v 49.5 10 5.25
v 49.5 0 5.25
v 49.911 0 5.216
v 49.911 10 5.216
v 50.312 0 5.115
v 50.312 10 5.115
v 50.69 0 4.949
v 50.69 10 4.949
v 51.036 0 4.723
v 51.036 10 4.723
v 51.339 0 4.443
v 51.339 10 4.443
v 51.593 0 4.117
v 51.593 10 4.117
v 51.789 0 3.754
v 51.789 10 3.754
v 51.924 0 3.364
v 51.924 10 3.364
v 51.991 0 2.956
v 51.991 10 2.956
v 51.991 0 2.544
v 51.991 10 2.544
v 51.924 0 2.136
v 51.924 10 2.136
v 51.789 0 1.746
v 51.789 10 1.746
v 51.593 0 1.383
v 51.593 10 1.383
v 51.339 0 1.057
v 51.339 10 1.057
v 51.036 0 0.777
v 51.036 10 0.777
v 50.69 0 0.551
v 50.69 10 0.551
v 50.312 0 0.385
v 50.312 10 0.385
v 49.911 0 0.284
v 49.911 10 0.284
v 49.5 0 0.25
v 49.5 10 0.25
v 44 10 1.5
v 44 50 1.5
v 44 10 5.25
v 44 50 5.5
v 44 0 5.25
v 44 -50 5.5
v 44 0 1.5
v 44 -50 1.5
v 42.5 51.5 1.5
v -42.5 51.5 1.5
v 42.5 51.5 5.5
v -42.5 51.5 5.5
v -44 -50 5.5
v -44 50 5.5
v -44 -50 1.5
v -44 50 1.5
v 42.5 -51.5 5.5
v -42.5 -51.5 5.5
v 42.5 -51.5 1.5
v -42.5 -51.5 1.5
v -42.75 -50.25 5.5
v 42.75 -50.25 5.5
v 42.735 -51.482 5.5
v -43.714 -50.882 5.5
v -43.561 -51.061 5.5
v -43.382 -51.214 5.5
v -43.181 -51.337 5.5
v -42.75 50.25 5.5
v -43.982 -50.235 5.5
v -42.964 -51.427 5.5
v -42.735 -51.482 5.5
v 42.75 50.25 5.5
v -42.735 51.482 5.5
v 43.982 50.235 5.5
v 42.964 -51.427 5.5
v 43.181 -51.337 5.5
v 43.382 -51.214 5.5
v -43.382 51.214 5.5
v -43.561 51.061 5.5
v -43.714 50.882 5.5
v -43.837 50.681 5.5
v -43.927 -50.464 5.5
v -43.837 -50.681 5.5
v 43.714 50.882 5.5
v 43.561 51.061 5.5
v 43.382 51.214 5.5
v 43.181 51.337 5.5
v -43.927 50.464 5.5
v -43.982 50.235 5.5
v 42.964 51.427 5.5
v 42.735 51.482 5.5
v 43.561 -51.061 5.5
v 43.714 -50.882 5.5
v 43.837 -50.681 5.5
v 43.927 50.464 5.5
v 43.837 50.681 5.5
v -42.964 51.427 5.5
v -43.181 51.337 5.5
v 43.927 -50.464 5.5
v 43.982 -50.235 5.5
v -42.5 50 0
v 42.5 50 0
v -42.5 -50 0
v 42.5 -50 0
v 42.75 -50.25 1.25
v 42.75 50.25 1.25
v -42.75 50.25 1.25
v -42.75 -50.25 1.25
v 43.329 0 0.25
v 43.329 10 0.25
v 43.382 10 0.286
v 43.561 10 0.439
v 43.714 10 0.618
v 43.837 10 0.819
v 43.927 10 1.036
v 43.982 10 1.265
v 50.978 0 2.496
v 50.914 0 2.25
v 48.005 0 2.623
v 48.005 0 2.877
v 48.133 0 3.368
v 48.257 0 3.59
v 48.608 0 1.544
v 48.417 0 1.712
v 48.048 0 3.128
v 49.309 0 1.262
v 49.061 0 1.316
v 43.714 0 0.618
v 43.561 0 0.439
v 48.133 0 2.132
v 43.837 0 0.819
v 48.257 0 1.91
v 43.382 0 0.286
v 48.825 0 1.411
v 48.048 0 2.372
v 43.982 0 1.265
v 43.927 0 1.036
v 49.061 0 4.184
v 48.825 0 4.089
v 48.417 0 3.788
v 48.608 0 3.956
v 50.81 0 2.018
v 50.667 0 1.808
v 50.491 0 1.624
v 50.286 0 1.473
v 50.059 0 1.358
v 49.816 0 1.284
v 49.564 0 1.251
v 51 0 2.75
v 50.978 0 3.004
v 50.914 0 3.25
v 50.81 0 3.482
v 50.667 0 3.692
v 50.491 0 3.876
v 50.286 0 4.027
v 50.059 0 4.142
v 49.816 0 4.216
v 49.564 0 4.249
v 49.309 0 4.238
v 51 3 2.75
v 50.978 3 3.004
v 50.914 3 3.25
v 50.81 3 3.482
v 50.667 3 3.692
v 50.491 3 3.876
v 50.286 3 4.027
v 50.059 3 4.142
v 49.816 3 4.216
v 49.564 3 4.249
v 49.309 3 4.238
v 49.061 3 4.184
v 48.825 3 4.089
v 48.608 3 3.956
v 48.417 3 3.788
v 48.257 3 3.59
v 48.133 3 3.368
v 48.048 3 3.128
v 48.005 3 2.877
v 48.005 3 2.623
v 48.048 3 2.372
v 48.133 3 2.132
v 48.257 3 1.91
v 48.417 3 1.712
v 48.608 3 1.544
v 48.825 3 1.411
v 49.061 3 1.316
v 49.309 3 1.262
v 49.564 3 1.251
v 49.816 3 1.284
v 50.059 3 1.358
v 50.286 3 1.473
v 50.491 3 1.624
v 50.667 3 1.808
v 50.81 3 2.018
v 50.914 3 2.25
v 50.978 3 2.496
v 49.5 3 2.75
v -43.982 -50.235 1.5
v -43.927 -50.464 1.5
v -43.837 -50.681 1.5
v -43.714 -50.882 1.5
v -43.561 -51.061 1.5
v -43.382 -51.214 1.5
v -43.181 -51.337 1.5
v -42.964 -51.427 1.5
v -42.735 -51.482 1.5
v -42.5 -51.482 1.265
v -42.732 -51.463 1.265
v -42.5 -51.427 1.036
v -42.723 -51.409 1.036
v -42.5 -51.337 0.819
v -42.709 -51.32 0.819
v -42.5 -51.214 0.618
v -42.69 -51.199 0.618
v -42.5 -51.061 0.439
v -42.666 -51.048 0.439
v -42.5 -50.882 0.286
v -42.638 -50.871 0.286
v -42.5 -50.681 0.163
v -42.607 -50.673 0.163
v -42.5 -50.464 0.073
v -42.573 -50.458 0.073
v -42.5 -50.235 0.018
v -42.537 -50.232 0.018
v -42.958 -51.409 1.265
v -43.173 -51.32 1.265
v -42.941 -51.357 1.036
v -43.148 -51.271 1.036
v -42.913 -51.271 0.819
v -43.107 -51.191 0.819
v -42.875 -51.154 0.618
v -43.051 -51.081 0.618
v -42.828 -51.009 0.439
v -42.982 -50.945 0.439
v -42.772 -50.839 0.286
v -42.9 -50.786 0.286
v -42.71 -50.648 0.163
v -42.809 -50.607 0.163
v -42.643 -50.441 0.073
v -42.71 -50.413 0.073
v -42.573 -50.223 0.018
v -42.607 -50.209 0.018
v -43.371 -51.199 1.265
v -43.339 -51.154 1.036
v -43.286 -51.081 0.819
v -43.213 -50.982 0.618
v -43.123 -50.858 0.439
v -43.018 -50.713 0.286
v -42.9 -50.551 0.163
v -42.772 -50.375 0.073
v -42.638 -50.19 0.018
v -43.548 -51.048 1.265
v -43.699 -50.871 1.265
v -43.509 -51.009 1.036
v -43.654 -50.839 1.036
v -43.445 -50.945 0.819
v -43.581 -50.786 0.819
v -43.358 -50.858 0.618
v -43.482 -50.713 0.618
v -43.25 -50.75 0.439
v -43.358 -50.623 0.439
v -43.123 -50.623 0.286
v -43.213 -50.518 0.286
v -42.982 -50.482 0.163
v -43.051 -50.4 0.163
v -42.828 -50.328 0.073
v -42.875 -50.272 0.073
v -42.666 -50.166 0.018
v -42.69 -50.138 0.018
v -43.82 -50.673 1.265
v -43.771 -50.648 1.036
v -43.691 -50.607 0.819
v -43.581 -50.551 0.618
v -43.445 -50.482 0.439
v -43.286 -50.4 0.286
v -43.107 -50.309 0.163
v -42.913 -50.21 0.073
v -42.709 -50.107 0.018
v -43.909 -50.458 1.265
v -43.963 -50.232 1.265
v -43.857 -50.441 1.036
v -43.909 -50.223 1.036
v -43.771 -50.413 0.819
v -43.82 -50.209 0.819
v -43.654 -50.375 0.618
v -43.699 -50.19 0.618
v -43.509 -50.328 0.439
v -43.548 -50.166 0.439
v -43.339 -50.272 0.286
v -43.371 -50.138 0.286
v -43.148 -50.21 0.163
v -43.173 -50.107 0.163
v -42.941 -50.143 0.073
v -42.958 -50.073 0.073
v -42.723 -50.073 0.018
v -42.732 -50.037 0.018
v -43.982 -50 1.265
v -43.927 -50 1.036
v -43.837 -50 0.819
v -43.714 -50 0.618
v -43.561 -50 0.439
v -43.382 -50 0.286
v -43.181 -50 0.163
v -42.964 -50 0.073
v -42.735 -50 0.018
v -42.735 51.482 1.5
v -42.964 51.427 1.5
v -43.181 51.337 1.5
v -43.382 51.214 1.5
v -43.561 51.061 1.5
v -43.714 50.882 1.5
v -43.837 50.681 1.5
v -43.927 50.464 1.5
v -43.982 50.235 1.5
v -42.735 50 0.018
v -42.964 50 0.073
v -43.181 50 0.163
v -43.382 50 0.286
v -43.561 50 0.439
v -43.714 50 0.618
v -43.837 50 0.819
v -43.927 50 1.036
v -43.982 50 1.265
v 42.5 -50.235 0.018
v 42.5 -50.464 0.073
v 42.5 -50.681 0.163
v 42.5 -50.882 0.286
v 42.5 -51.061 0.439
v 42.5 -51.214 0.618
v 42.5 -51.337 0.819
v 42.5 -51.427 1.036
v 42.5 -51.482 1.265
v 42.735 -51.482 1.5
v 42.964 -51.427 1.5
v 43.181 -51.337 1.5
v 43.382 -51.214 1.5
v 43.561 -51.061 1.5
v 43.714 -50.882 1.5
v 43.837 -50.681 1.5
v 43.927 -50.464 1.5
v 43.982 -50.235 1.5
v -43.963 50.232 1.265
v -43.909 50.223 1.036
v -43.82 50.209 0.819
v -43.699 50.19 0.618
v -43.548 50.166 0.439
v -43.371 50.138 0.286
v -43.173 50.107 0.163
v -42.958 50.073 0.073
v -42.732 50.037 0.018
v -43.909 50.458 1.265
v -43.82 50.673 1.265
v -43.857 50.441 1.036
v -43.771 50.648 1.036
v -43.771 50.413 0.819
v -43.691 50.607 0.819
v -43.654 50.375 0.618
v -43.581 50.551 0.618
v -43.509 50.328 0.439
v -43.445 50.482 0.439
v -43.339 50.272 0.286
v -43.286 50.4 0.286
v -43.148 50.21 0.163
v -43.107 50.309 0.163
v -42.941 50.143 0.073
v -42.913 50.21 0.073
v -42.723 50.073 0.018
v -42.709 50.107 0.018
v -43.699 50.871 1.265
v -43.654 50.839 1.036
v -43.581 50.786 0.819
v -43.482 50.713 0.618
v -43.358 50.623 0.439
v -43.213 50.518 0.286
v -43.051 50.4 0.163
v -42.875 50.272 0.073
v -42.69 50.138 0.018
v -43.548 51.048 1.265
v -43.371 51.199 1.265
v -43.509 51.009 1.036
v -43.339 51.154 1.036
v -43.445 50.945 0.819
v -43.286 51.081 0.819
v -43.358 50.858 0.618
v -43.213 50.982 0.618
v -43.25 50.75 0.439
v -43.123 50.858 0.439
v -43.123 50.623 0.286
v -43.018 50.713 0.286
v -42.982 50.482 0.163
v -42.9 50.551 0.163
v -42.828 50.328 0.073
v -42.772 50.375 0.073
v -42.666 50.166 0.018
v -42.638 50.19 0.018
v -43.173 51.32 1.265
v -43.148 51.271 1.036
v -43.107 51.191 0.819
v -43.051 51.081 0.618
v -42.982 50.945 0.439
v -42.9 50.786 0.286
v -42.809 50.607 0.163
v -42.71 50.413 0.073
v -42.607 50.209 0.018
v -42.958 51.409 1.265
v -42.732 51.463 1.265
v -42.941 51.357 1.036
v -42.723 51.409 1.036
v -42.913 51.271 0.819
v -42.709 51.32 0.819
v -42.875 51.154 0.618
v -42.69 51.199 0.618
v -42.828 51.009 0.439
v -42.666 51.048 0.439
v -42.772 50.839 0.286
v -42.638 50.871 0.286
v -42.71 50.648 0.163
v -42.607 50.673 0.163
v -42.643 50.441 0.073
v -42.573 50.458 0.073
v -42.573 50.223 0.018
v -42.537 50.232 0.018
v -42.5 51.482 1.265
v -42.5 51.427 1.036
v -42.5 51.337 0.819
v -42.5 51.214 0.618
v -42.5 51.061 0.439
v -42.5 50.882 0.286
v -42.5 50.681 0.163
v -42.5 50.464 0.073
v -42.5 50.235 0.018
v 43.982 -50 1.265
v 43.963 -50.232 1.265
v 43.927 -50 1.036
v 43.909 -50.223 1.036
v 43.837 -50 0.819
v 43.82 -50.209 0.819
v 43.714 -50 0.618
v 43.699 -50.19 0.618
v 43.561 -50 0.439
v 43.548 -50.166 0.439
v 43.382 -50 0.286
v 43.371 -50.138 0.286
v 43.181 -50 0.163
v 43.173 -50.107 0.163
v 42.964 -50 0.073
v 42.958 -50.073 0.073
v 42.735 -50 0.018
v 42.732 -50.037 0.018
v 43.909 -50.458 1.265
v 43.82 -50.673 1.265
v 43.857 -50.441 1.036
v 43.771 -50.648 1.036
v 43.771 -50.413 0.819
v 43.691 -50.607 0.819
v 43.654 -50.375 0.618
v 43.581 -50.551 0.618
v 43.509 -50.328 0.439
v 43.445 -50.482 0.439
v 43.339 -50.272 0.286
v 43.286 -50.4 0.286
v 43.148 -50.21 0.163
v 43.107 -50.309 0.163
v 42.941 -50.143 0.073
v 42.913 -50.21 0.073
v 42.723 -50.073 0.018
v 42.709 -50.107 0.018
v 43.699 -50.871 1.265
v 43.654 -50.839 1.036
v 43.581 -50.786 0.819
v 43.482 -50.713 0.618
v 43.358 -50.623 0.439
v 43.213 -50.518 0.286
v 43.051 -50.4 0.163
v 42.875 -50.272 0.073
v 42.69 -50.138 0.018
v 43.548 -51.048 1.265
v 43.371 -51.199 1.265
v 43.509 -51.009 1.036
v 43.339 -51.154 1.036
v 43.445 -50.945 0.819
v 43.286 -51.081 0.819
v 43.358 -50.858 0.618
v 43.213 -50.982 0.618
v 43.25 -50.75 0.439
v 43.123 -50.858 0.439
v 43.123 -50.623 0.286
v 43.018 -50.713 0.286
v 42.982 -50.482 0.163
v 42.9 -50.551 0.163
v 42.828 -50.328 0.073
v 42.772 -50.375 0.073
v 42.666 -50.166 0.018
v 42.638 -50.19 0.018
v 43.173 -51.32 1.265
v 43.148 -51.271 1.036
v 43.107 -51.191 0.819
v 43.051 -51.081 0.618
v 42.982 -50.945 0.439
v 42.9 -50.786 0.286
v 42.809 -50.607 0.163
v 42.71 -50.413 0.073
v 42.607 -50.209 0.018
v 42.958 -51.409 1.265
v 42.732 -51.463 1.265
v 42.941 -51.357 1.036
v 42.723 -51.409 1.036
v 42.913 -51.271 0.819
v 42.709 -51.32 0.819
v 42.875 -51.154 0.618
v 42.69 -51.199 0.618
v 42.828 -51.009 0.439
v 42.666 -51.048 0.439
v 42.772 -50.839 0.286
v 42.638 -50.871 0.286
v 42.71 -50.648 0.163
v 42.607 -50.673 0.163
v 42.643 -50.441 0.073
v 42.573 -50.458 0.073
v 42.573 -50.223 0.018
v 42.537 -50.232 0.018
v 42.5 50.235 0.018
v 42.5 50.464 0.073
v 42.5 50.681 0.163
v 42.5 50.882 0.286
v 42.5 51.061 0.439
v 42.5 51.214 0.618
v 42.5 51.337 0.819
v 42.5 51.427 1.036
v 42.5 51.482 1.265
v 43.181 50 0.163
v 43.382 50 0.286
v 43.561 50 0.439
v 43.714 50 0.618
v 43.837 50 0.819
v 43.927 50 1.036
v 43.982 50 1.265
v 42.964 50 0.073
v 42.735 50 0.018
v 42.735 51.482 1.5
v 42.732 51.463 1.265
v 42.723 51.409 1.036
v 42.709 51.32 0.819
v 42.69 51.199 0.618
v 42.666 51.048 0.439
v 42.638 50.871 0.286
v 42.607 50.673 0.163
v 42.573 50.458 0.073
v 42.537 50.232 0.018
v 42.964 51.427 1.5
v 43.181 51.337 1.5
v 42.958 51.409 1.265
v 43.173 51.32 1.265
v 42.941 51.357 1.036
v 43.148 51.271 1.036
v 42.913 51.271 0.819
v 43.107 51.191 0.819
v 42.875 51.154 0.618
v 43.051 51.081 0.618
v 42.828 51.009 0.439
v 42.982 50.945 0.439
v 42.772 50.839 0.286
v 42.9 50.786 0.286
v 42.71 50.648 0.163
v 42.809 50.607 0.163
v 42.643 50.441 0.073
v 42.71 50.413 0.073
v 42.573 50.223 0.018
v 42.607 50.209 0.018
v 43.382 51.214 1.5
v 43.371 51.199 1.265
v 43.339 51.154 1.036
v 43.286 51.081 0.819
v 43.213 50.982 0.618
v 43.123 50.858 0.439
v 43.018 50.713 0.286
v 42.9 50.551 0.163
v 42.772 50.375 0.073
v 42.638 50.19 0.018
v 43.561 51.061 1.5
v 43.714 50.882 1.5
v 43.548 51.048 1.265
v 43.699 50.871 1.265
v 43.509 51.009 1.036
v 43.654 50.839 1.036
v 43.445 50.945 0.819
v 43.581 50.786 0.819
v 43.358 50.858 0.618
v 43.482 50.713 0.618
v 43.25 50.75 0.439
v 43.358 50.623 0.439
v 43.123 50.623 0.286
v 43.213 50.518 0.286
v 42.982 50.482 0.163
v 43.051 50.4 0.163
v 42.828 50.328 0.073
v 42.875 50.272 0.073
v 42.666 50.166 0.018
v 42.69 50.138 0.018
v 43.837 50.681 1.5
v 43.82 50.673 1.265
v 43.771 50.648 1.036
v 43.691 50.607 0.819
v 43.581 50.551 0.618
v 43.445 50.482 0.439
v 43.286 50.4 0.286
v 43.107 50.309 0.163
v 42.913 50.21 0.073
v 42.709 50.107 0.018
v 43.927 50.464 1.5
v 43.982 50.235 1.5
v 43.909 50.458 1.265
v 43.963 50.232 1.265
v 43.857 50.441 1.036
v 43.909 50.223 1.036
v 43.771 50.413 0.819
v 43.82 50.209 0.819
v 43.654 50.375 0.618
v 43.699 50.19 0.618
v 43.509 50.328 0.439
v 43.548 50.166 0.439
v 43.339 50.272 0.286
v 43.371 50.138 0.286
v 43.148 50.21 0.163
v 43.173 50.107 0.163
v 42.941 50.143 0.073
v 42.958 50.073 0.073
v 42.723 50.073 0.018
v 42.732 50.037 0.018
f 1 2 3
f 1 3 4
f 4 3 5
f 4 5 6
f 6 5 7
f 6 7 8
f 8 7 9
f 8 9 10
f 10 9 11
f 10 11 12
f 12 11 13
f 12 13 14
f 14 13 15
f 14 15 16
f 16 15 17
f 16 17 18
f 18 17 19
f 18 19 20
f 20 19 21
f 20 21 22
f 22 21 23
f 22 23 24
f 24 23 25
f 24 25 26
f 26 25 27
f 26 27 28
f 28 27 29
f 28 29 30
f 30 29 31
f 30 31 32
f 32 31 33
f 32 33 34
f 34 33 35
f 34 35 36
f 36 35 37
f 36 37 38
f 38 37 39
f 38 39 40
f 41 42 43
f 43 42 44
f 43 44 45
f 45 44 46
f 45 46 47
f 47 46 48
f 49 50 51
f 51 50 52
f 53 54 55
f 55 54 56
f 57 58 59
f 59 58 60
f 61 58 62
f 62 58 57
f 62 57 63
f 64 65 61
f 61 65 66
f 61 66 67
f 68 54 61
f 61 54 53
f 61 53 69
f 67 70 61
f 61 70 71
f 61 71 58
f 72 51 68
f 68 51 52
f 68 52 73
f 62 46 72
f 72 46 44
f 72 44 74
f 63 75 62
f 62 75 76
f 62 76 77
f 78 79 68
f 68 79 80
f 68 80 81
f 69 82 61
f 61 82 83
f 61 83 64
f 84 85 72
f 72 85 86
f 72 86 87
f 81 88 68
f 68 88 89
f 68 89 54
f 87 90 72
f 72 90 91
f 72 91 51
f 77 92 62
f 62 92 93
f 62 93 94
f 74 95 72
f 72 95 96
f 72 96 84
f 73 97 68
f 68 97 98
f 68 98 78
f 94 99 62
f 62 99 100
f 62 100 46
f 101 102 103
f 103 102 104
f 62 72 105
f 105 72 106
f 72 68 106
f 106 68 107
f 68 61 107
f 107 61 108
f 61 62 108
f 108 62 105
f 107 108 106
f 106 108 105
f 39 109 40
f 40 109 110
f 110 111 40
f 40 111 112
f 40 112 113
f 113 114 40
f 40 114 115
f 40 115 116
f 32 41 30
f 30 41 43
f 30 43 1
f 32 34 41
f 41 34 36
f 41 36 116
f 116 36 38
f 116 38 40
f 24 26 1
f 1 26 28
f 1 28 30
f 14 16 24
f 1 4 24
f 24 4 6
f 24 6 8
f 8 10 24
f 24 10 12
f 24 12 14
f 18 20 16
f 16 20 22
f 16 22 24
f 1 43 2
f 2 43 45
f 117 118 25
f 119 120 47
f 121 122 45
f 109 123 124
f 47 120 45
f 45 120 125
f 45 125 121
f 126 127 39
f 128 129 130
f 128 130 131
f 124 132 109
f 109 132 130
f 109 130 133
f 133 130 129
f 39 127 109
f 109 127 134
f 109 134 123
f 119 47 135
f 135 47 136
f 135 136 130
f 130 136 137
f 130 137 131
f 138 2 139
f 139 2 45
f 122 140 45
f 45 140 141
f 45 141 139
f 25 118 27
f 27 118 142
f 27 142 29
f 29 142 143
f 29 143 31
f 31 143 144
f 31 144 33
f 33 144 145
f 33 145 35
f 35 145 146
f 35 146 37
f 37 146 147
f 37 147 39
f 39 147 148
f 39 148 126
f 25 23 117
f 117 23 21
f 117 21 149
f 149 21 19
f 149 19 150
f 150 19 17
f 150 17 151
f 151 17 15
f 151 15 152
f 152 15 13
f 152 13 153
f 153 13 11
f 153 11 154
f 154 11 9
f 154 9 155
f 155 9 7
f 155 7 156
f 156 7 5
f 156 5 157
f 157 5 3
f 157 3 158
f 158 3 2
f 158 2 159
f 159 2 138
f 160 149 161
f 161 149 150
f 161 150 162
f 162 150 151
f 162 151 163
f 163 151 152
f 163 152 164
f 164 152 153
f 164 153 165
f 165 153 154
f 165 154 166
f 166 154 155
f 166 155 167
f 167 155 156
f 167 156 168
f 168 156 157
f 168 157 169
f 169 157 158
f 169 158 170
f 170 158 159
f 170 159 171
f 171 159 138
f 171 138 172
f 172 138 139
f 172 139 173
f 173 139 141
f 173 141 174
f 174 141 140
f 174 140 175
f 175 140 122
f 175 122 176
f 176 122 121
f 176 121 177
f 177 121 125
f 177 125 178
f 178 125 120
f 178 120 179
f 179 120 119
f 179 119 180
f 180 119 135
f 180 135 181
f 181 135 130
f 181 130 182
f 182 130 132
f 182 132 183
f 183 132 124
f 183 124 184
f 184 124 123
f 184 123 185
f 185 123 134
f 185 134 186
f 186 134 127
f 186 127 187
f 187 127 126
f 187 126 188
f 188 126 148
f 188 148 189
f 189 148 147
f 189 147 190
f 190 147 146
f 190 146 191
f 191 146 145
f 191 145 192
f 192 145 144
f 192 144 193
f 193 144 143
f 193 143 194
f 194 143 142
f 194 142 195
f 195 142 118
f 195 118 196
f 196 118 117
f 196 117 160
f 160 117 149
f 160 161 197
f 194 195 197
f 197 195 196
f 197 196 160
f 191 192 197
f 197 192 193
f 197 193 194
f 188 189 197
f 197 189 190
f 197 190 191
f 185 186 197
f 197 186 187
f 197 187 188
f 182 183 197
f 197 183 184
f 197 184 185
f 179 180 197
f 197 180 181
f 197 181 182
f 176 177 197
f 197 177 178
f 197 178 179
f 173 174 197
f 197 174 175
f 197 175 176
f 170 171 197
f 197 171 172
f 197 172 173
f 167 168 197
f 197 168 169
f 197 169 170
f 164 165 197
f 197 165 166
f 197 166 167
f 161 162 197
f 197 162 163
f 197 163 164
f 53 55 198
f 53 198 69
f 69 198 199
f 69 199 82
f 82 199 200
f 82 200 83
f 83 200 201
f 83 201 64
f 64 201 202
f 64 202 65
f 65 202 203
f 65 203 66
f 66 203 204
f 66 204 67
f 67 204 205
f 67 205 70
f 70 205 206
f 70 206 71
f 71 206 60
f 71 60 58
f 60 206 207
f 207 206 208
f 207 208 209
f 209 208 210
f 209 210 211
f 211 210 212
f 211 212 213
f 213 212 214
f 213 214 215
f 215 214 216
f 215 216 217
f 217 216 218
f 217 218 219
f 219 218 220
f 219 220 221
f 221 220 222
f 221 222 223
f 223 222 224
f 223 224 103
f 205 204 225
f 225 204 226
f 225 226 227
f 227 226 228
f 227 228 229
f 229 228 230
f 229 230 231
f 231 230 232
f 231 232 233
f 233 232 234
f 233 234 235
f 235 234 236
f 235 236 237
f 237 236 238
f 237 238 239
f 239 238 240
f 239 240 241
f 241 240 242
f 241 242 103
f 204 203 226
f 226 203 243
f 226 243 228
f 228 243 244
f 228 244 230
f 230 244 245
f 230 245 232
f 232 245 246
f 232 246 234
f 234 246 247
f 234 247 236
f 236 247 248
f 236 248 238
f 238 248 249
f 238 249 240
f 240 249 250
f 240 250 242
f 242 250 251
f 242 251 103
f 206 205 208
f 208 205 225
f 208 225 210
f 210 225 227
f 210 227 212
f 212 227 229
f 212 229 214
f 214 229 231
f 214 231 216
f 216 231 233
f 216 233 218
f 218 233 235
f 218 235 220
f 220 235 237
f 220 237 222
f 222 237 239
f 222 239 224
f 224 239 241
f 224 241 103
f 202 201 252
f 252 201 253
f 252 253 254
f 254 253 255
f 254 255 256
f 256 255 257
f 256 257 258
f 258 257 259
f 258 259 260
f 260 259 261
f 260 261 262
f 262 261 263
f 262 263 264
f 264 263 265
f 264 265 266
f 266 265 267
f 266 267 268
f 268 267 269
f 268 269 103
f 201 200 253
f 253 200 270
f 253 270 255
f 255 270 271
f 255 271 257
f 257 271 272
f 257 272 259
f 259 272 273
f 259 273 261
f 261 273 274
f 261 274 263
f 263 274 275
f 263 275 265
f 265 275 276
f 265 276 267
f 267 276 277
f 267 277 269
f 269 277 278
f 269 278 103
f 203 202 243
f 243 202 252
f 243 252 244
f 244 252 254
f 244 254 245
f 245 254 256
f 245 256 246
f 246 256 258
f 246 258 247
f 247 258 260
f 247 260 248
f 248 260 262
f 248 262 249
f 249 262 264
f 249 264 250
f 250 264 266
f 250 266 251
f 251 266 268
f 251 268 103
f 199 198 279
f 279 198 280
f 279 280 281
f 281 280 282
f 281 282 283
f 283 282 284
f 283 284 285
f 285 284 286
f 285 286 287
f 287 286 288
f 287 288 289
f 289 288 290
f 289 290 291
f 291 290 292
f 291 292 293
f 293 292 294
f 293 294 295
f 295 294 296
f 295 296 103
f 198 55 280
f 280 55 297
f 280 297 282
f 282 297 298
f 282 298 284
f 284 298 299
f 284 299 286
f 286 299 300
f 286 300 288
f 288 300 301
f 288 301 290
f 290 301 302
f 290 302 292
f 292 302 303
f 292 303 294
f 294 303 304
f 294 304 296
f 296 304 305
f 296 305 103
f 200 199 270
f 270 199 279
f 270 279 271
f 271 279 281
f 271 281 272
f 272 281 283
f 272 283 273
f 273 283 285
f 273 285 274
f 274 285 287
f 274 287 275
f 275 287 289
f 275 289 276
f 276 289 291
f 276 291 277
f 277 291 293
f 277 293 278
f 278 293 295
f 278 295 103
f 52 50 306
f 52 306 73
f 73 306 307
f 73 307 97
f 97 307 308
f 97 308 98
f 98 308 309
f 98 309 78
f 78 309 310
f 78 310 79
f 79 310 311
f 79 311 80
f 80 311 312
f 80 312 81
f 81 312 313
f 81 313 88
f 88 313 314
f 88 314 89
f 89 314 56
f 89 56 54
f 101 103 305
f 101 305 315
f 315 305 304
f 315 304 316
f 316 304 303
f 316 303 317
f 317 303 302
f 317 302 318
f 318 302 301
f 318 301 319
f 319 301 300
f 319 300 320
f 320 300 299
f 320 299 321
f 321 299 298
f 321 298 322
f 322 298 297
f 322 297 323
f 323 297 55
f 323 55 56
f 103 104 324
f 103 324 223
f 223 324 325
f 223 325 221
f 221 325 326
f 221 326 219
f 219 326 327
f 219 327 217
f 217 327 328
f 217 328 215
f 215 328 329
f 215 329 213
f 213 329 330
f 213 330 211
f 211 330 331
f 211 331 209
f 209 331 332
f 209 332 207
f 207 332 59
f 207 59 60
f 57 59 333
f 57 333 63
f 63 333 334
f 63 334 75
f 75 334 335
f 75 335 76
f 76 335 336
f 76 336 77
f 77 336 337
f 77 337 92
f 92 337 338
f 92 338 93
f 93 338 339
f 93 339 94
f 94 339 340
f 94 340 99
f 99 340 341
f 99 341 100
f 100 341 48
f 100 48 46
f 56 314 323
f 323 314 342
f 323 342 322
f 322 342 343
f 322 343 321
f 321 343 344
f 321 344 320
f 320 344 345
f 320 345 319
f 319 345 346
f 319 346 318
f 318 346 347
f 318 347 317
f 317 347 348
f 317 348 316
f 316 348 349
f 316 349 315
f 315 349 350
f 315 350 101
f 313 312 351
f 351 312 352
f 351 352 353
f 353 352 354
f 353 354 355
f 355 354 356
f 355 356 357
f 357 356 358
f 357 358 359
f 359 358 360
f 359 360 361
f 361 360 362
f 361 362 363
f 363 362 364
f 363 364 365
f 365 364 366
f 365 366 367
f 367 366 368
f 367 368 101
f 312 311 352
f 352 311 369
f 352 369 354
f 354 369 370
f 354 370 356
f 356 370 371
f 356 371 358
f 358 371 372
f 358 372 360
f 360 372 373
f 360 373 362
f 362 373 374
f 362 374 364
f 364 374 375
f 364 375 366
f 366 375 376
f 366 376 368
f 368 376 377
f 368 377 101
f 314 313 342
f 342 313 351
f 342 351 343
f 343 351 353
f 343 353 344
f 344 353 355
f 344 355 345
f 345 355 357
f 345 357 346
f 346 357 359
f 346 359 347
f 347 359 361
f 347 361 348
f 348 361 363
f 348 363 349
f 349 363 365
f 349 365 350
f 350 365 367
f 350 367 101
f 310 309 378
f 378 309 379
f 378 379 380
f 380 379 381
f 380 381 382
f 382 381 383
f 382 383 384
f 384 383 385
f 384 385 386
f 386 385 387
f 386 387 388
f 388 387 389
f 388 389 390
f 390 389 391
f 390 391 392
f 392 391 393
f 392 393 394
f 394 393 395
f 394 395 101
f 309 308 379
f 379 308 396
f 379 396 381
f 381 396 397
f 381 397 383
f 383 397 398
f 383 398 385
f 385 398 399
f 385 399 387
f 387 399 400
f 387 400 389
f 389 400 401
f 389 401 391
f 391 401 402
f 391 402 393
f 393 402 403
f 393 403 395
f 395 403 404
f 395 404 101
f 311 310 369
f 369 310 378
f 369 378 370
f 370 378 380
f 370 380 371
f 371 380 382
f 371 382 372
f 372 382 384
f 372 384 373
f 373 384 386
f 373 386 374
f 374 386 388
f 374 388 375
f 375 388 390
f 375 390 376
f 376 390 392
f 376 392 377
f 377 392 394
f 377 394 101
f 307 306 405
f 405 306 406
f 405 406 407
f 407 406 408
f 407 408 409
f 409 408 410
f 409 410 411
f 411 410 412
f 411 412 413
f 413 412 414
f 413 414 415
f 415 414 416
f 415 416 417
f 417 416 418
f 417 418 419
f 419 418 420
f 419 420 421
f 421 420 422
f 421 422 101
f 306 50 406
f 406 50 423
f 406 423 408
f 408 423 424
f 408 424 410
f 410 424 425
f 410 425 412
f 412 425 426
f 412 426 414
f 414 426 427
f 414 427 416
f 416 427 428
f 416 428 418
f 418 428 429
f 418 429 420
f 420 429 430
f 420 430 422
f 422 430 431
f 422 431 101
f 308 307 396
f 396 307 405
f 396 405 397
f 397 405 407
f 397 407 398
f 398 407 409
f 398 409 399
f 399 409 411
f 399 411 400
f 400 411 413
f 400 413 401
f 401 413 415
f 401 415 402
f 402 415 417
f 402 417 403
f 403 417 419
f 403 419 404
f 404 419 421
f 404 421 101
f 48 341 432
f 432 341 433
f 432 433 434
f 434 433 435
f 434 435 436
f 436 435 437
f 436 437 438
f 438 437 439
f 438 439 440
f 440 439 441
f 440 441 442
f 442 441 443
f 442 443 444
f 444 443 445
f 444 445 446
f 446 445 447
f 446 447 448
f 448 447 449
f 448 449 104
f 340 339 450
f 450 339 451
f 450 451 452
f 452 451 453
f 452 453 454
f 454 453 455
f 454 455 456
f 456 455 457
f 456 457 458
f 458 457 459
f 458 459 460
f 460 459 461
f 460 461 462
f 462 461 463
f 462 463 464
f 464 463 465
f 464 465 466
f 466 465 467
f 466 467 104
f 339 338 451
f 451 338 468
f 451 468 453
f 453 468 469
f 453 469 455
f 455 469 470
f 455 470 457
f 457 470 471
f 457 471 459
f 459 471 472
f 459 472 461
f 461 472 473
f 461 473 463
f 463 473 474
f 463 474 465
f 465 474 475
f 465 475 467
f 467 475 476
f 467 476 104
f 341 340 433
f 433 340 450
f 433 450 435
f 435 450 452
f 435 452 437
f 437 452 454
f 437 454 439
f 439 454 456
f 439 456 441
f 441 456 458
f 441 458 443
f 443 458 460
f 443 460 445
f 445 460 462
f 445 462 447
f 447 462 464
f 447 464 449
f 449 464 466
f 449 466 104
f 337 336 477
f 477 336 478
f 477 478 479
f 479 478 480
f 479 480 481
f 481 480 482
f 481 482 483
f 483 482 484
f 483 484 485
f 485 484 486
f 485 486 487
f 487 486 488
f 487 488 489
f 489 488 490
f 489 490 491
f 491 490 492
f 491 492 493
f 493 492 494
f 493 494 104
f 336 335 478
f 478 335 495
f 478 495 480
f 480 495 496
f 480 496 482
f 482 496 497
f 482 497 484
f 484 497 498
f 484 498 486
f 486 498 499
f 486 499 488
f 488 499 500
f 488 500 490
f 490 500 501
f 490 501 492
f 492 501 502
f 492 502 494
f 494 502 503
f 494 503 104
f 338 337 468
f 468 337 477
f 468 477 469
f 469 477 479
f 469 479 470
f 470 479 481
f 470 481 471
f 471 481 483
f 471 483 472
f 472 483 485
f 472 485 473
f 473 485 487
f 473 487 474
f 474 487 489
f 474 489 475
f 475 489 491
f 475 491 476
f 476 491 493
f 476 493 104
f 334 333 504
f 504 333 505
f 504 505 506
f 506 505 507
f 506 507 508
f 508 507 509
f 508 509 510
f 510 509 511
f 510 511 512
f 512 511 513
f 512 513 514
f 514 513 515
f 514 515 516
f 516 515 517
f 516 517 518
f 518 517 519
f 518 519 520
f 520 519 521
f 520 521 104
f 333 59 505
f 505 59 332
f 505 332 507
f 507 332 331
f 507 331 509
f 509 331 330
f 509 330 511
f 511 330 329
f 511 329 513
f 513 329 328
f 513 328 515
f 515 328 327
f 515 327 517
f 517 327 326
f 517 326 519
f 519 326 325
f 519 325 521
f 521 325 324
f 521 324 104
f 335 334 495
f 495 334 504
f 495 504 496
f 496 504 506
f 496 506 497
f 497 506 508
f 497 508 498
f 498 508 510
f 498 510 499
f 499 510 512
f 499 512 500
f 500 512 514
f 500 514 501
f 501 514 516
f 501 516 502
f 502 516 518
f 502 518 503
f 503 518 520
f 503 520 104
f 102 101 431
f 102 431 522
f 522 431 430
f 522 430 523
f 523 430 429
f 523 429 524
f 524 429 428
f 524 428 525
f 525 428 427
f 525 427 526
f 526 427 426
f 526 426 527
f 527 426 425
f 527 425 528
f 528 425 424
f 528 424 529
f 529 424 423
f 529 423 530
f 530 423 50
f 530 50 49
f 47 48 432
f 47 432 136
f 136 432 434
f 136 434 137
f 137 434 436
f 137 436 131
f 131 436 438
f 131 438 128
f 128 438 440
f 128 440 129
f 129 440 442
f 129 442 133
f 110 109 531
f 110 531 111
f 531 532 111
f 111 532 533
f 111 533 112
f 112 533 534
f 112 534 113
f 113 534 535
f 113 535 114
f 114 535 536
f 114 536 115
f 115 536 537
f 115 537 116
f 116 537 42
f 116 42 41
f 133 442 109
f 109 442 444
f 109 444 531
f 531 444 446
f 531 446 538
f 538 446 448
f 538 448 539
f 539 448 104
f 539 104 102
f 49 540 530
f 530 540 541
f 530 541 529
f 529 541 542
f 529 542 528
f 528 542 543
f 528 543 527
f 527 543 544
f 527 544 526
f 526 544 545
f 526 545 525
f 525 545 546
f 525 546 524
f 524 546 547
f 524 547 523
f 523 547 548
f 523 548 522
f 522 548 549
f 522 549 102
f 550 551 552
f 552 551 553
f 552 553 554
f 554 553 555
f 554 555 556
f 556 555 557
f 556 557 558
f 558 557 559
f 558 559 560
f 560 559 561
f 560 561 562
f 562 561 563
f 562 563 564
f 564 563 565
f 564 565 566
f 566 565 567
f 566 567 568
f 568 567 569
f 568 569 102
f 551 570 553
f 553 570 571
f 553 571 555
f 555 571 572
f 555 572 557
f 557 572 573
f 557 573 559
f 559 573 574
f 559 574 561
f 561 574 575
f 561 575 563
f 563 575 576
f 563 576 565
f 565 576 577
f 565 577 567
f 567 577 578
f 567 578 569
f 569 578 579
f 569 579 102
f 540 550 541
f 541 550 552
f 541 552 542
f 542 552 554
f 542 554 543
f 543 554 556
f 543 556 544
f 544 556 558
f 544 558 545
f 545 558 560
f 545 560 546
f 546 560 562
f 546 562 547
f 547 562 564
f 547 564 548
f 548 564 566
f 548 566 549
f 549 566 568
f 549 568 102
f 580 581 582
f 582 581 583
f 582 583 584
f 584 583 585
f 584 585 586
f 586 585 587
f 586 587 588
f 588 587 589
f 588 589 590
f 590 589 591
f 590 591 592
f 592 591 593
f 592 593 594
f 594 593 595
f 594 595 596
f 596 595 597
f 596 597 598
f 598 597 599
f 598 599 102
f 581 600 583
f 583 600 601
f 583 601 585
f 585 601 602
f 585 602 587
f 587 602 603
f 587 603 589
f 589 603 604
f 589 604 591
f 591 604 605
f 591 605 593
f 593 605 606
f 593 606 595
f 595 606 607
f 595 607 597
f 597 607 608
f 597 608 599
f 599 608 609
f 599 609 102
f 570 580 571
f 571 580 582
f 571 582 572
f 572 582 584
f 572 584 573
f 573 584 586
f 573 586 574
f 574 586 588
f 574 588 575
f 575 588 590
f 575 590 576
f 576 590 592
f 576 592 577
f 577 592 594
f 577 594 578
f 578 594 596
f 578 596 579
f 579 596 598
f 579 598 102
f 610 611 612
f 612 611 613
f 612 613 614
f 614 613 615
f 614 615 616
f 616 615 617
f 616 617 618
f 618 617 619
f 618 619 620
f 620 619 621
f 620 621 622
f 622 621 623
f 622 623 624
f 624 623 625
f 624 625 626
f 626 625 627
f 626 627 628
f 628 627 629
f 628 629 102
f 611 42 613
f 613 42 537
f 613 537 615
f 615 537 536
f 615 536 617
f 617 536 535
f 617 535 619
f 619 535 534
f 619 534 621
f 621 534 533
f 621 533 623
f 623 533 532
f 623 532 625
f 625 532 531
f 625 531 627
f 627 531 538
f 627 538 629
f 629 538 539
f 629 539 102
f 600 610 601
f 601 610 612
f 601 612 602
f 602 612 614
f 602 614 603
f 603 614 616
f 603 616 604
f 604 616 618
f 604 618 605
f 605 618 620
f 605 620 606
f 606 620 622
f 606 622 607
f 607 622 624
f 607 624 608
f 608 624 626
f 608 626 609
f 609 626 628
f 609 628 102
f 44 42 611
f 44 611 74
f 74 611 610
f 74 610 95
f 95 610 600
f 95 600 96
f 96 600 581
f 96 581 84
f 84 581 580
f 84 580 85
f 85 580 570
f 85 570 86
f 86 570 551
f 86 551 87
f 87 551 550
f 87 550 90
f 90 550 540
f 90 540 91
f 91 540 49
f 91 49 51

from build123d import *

# Parameters (mm, degrees)
SKETCH1_W           = 88
SKETCH1_H           = 103
BOSS_EXTRUDE1_DEPTH = 5.5
SHELL1_T            = -1.25
SKETCH2_W           = 5
SKETCH2_H           = 10
BOSS_EXTRUDE2_DEPTH = 8
FILLET1_RADIUS      = 2.5
FILLET1_LENGTH      = 10
SKETCH3_R           = 1.5
CUT_EXTRUDE1_DEPTH  = 3
FILLET2_R           = 1.5


with BuildPart() as part:
    # Sketch1 → Boss-Extrude1 (new body)
    with BuildSketch(Plane.XY):
        Rectangle(SKETCH1_W, SKETCH1_H)
    extrude(amount=BOSS_EXTRUDE1_DEPTH)

    # Shell1
    shell1_openings = [part.faces().sort_by_distance(p)[0] for p in [
        (0, 0, 5.5),
    ]]
    offset(amount=SHELL1_T, openings=shell1_openings, kind=Kind.INTERSECTION)

    # Sketch2 → Boss-Extrude2 (add)
    with BuildSketch(Plane(origin=(44, 0, 0), x_dir=(0, 0, -1), z_dir=(1, 0, 0))):
        with Locations((-2.75, 5)):
            Rectangle(SKETCH2_W, SKETCH2_H)
    extrude(amount=BOSS_EXTRUDE2_DEPTH)

    # Fillet1: full round fillet: the end face becomes a half cylinder, R = half its width
    fillet1_face = Plane((52, 5, 2.75), x_dir=(0, 1, 0), z_dir=(1, 0, 0))  # on the end face: x along it, z out of the body
    fillet1_slab = fillet1_face.offset(-FILLET1_RADIUS / 2) * Box(FILLET1_LENGTH, 2 * FILLET1_RADIUS, FILLET1_RADIUS, mode=Mode.PRIVATE)  # the body's end, R deep
    fillet1_round = Plane((49.5, 5, 2.75), x_dir=(1, 0, 0), z_dir=(0, 1, 0)) * Cylinder(FILLET1_RADIUS, FILLET1_LENGTH, mode=Mode.PRIVATE)  # its axis R under the face
    add(fillet1_slab - fillet1_round, mode=Mode.SUBTRACT)

    # Sketch3 → Cut-Extrude1 (cut)
    with BuildSketch(Plane.XZ):
        with Locations((49.5, 2.75)):
            Circle(SKETCH3_R)
    extrude(amount=-CUT_EXTRUDE1_DEPTH, mode=Mode.SUBTRACT)

    # Fillet2
    # the kernel refuses this fillet: 1.5 mm, written as the material it takes off along each edge
    with BuildSketch(Plane(origin=(-42.5, -50, 1.5), x_dir=(0, 0, -1), z_dir=(-1, 0, 0))) as fillet2_piece_1_section:
        Polygon((0, 0), (FILLET2_R, 0), (FILLET2_R, FILLET2_R), (0, FILLET2_R), align=None)
    fillet2_piece_1 = extrude(amount=FILLET2_R, mode=Mode.PRIVATE)
    fillet2_piece_1 = fillet2_piece_1 - Plane(origin=(-42.5, -50, 1.5), x_dir=(0, 0.7071067811865475, 0.7071067811865475), z_dir=(-1, 0, 0)) * Sphere(FILLET2_R, mode=Mode.PRIVATE)
    add(fillet2_piece_1, mode=Mode.SUBTRACT)
    with BuildSketch(Plane(origin=(-42.5, 50, 1.5), x_dir=(-1, 0, 0), z_dir=(0, 1, 0))) as fillet2_piece_2_section:
        Polygon((0, 0), (FILLET2_R, 0), (FILLET2_R, -FILLET2_R), (0, -FILLET2_R), align=None)
    fillet2_piece_2 = extrude(amount=FILLET2_R, mode=Mode.PRIVATE)
    fillet2_piece_2 = fillet2_piece_2 - Plane(origin=(-42.5, 50, 1.5), x_dir=(0.7071067811865475, 0, 0.7071067811865475), z_dir=(0, 1, 0)) * Sphere(FILLET2_R, mode=Mode.PRIVATE)
    add(fillet2_piece_2, mode=Mode.SUBTRACT)
    with BuildSketch(Plane(origin=(42.5, -50, 1.5), x_dir=(0, 0, -1), z_dir=(1, 0, 0))) as fillet2_piece_3_section:
        Polygon((0, 0), (FILLET2_R, 0), (FILLET2_R, -FILLET2_R), (0, -FILLET2_R), align=None)
    fillet2_piece_3 = extrude(amount=FILLET2_R, mode=Mode.PRIVATE)
    fillet2_piece_3 = fillet2_piece_3 - Plane(origin=(42.5, -50, 1.5), x_dir=(0, 0.7071067811865475, 0.7071067811865475), z_dir=(1, 0, 0)) * Sphere(FILLET2_R, mode=Mode.PRIVATE)
    add(fillet2_piece_3, mode=Mode.SUBTRACT)
    with BuildSketch(Plane(origin=(42.5, 50, 1.5), x_dir=(1, 0, 0), z_dir=(0, 1, 0))) as fillet2_piece_4_section:
        Polygon((0, 0), (FILLET2_R, 0), (FILLET2_R, FILLET2_R), (0, FILLET2_R), align=None)
    fillet2_piece_4 = extrude(amount=FILLET2_R, mode=Mode.PRIVATE)
    fillet2_piece_4 = fillet2_piece_4 - Plane(origin=(42.5, 50, 1.5), x_dir=(-0.7071067811865475, 0, 0.7071067811865475), z_dir=(0, 1, 0)) * Sphere(FILLET2_R, mode=Mode.PRIVATE)
    add(fillet2_piece_4, mode=Mode.SUBTRACT)
    with BuildSketch(Plane(origin=(-44, -50, 0), x_dir=(0, 0, 1), z_dir=(0, 1, 0))) as fillet2_piece_5:
        with BuildLine():
            CenterArc((FILLET2_R, FILLET2_R), FILLET2_R, 180, 90)
            Line((0, FILLET2_R), (0, 0))
            Line((0, 0), (FILLET2_R, 0))
        make_face()
    extrude(amount=100, mode=Mode.SUBTRACT)
    with BuildSketch(Plane(origin=(42.5, -51.5, 0), x_dir=(0, 1, 0), z_dir=(-1, 0, 0))) as fillet2_piece_6:
        with BuildLine():
            CenterArc((FILLET2_R, -FILLET2_R), FILLET2_R, 90, 90)
            Line((0, -FILLET2_R), (0, 0))
            Line((0, 0), (FILLET2_R, 0))
        make_face()
    extrude(amount=85, mode=Mode.SUBTRACT)
    with BuildSketch(Plane(origin=(44, 50, 0), x_dir=(0, 0, 1), z_dir=(0, -1, 0))) as fillet2_piece_7_section:
        with BuildLine():
            CenterArc((FILLET2_R, FILLET2_R), FILLET2_R, 180, 90)
            Line((0, FILLET2_R), (0, 0))
            Line((0, 0), (FILLET2_R, 0))
        make_face()
    fillet2_piece_7 = extrude(amount=100, mode=Mode.PRIVATE)
    fillet2_piece_7 = split(fillet2_piece_7, bisect_by=Plane(origin=(43.836700162, 30, 0.25), z_dir=(0, 0, 1)), keep=Keep.TOP, mode=Mode.PRIVATE)
    fillet2_piece_7 = split(fillet2_piece_7, bisect_by=Plane(origin=(43.836700162, 10, 0.589852414), z_dir=(0, 1, 0)), keep=Keep.TOP, mode=Mode.PRIVATE)
    add(fillet2_piece_7, mode=Mode.SUBTRACT)
    with BuildSketch(Plane(origin=(44, 50, 0), x_dir=(0, 0, 1), z_dir=(0, -1, 0))) as fillet2_piece_8_section:
        with BuildLine():
            CenterArc((FILLET2_R, FILLET2_R), FILLET2_R, 180, 90)
            Line((0, FILLET2_R), (0, 0))
            Line((0, 0), (FILLET2_R, 0))
        make_face()
    fillet2_piece_8 = extrude(amount=100, mode=Mode.PRIVATE)
    fillet2_piece_8 = split(fillet2_piece_8, bisect_by=Plane(origin=(43.48515527, 30, 0.25), z_dir=(0, 0, -1)), keep=Keep.TOP, mode=Mode.PRIVATE)
    fillet2_piece_8 = split(fillet2_piece_8, bisect_by=Plane(origin=(43.48515527, 10, 0.09081038), z_dir=(0, 1, 0)), keep=Keep.TOP, mode=Mode.PRIVATE)
    add(fillet2_piece_8, mode=Mode.SUBTRACT)
    with BuildSketch(Plane(origin=(44, 50, 0), x_dir=(0, 0, 1), z_dir=(0, -1, 0))) as fillet2_piece_9_section:
        with BuildLine():
            CenterArc((FILLET2_R, FILLET2_R), FILLET2_R, 180, 90)
            Line((0, FILLET2_R), (0, 0))
            Line((0, 0), (FILLET2_R, 0))
        make_face()
    fillet2_piece_9 = extrude(amount=100, mode=Mode.PRIVATE)
    fillet2_piece_9 = split(fillet2_piece_9, bisect_by=Plane(origin=(43.48515527, 0, 0.09081038), z_dir=(0, 1, 0)), keep=Keep.TOP, mode=Mode.PRIVATE)
    fillet2_piece_9 = split(fillet2_piece_9, bisect_by=Plane(origin=(43.48515527, 5, 0.25), z_dir=(0, 0, -1)), keep=Keep.TOP, mode=Mode.PRIVATE)
    fillet2_piece_9 = split(fillet2_piece_9, bisect_by=Plane(origin=(43.48515527, 10, 0.09081038), z_dir=(0, -1, 0)), keep=Keep.TOP, mode=Mode.PRIVATE)
    add(fillet2_piece_9, mode=Mode.SUBTRACT)
    with BuildSketch(Plane(origin=(44, 50, 0), x_dir=(0, 0, 1), z_dir=(0, -1, 0))) as fillet2_piece_10_section:
        with BuildLine():
            CenterArc((FILLET2_R, FILLET2_R), FILLET2_R, 180, 90)
            Line((0, FILLET2_R), (0, 0))
            Line((0, 0), (FILLET2_R, 0))
        make_face()
    fillet2_piece_10 = extrude(amount=100, mode=Mode.PRIVATE)
    fillet2_piece_10 = split(fillet2_piece_10, bisect_by=Plane(origin=(43.836700162, 0, 0.589852414), z_dir=(0, -1, 0)), keep=Keep.TOP, mode=Mode.PRIVATE)
    fillet2_piece_10 = split(fillet2_piece_10, bisect_by=Plane(origin=(43.836700162, -25, 0.25), z_dir=(0, 0, 1)), keep=Keep.TOP, mode=Mode.PRIVATE)
    add(fillet2_piece_10, mode=Mode.SUBTRACT)
    with BuildSketch(Plane(origin=(44, 50, 0), x_dir=(0, 0, 1), z_dir=(0, -1, 0))) as fillet2_piece_11_section:
        with BuildLine():
            CenterArc((FILLET2_R, FILLET2_R), FILLET2_R, 180, 90)
            Line((0, FILLET2_R), (0, 0))
            Line((0, 0), (FILLET2_R, 0))
        make_face()
    fillet2_piece_11 = extrude(amount=100, mode=Mode.PRIVATE)
    fillet2_piece_11 = split(fillet2_piece_11, bisect_by=Plane(origin=(43.48515527, 0, 0.09081038), z_dir=(0, -1, 0)), keep=Keep.TOP, mode=Mode.PRIVATE)
    fillet2_piece_11 = split(fillet2_piece_11, bisect_by=Plane(origin=(43.48515527, -25, 0.25), z_dir=(0, 0, -1)), keep=Keep.TOP, mode=Mode.PRIVATE)
    add(fillet2_piece_11, mode=Mode.SUBTRACT)
    with BuildSketch(Plane(origin=(-42.5, 51.5, 0), x_dir=(0, 0, 1), z_dir=(1, 0, 0))) as fillet2_piece_12:
        with BuildLine():
            CenterArc((FILLET2_R, FILLET2_R), FILLET2_R, 180, 90)
            Line((0, FILLET2_R), (0, 0))
            Line((0, 0), (FILLET2_R, 0))
        make_face()
    extrude(amount=85, mode=Mode.SUBTRACT)
    with BuildSketch(Plane(origin=(44, 51.5, 1.5), x_dir=(-1, 0, 0), z_dir=(0, 0, 1)), Plane(origin=(44, -51.5, 1.5), x_dir=(0, 1, 0), z_dir=(0, 0, 1))) as fillet2_piece_13:
        with BuildLine():
            CenterArc((FILLET2_R, FILLET2_R), FILLET2_R, 180, 90)
            Line((0, FILLET2_R), (0, 0))
            Line((0, 0), (FILLET2_R, 0))
        make_face()
    extrude(amount=7.75, mode=Mode.SUBTRACT)
    with BuildSketch(Plane(origin=(-44, -51.5, 1.5), x_dir=(0, 1, 0), z_dir=(0, 0, 1)), Plane(origin=(-44, 51.5, 1.5), x_dir=(1, 0, 0), z_dir=(0, 0, 1))) as fillet2_piece_14:
        with BuildLine():
            CenterArc((FILLET2_R, -FILLET2_R), FILLET2_R, 90, 90)
            Line((0, -FILLET2_R), (0, 0))
            Line((0, 0), (FILLET2_R, 0))
        make_face()
    extrude(amount=7.75, mode=Mode.SUBTRACT)


solid = part.part
